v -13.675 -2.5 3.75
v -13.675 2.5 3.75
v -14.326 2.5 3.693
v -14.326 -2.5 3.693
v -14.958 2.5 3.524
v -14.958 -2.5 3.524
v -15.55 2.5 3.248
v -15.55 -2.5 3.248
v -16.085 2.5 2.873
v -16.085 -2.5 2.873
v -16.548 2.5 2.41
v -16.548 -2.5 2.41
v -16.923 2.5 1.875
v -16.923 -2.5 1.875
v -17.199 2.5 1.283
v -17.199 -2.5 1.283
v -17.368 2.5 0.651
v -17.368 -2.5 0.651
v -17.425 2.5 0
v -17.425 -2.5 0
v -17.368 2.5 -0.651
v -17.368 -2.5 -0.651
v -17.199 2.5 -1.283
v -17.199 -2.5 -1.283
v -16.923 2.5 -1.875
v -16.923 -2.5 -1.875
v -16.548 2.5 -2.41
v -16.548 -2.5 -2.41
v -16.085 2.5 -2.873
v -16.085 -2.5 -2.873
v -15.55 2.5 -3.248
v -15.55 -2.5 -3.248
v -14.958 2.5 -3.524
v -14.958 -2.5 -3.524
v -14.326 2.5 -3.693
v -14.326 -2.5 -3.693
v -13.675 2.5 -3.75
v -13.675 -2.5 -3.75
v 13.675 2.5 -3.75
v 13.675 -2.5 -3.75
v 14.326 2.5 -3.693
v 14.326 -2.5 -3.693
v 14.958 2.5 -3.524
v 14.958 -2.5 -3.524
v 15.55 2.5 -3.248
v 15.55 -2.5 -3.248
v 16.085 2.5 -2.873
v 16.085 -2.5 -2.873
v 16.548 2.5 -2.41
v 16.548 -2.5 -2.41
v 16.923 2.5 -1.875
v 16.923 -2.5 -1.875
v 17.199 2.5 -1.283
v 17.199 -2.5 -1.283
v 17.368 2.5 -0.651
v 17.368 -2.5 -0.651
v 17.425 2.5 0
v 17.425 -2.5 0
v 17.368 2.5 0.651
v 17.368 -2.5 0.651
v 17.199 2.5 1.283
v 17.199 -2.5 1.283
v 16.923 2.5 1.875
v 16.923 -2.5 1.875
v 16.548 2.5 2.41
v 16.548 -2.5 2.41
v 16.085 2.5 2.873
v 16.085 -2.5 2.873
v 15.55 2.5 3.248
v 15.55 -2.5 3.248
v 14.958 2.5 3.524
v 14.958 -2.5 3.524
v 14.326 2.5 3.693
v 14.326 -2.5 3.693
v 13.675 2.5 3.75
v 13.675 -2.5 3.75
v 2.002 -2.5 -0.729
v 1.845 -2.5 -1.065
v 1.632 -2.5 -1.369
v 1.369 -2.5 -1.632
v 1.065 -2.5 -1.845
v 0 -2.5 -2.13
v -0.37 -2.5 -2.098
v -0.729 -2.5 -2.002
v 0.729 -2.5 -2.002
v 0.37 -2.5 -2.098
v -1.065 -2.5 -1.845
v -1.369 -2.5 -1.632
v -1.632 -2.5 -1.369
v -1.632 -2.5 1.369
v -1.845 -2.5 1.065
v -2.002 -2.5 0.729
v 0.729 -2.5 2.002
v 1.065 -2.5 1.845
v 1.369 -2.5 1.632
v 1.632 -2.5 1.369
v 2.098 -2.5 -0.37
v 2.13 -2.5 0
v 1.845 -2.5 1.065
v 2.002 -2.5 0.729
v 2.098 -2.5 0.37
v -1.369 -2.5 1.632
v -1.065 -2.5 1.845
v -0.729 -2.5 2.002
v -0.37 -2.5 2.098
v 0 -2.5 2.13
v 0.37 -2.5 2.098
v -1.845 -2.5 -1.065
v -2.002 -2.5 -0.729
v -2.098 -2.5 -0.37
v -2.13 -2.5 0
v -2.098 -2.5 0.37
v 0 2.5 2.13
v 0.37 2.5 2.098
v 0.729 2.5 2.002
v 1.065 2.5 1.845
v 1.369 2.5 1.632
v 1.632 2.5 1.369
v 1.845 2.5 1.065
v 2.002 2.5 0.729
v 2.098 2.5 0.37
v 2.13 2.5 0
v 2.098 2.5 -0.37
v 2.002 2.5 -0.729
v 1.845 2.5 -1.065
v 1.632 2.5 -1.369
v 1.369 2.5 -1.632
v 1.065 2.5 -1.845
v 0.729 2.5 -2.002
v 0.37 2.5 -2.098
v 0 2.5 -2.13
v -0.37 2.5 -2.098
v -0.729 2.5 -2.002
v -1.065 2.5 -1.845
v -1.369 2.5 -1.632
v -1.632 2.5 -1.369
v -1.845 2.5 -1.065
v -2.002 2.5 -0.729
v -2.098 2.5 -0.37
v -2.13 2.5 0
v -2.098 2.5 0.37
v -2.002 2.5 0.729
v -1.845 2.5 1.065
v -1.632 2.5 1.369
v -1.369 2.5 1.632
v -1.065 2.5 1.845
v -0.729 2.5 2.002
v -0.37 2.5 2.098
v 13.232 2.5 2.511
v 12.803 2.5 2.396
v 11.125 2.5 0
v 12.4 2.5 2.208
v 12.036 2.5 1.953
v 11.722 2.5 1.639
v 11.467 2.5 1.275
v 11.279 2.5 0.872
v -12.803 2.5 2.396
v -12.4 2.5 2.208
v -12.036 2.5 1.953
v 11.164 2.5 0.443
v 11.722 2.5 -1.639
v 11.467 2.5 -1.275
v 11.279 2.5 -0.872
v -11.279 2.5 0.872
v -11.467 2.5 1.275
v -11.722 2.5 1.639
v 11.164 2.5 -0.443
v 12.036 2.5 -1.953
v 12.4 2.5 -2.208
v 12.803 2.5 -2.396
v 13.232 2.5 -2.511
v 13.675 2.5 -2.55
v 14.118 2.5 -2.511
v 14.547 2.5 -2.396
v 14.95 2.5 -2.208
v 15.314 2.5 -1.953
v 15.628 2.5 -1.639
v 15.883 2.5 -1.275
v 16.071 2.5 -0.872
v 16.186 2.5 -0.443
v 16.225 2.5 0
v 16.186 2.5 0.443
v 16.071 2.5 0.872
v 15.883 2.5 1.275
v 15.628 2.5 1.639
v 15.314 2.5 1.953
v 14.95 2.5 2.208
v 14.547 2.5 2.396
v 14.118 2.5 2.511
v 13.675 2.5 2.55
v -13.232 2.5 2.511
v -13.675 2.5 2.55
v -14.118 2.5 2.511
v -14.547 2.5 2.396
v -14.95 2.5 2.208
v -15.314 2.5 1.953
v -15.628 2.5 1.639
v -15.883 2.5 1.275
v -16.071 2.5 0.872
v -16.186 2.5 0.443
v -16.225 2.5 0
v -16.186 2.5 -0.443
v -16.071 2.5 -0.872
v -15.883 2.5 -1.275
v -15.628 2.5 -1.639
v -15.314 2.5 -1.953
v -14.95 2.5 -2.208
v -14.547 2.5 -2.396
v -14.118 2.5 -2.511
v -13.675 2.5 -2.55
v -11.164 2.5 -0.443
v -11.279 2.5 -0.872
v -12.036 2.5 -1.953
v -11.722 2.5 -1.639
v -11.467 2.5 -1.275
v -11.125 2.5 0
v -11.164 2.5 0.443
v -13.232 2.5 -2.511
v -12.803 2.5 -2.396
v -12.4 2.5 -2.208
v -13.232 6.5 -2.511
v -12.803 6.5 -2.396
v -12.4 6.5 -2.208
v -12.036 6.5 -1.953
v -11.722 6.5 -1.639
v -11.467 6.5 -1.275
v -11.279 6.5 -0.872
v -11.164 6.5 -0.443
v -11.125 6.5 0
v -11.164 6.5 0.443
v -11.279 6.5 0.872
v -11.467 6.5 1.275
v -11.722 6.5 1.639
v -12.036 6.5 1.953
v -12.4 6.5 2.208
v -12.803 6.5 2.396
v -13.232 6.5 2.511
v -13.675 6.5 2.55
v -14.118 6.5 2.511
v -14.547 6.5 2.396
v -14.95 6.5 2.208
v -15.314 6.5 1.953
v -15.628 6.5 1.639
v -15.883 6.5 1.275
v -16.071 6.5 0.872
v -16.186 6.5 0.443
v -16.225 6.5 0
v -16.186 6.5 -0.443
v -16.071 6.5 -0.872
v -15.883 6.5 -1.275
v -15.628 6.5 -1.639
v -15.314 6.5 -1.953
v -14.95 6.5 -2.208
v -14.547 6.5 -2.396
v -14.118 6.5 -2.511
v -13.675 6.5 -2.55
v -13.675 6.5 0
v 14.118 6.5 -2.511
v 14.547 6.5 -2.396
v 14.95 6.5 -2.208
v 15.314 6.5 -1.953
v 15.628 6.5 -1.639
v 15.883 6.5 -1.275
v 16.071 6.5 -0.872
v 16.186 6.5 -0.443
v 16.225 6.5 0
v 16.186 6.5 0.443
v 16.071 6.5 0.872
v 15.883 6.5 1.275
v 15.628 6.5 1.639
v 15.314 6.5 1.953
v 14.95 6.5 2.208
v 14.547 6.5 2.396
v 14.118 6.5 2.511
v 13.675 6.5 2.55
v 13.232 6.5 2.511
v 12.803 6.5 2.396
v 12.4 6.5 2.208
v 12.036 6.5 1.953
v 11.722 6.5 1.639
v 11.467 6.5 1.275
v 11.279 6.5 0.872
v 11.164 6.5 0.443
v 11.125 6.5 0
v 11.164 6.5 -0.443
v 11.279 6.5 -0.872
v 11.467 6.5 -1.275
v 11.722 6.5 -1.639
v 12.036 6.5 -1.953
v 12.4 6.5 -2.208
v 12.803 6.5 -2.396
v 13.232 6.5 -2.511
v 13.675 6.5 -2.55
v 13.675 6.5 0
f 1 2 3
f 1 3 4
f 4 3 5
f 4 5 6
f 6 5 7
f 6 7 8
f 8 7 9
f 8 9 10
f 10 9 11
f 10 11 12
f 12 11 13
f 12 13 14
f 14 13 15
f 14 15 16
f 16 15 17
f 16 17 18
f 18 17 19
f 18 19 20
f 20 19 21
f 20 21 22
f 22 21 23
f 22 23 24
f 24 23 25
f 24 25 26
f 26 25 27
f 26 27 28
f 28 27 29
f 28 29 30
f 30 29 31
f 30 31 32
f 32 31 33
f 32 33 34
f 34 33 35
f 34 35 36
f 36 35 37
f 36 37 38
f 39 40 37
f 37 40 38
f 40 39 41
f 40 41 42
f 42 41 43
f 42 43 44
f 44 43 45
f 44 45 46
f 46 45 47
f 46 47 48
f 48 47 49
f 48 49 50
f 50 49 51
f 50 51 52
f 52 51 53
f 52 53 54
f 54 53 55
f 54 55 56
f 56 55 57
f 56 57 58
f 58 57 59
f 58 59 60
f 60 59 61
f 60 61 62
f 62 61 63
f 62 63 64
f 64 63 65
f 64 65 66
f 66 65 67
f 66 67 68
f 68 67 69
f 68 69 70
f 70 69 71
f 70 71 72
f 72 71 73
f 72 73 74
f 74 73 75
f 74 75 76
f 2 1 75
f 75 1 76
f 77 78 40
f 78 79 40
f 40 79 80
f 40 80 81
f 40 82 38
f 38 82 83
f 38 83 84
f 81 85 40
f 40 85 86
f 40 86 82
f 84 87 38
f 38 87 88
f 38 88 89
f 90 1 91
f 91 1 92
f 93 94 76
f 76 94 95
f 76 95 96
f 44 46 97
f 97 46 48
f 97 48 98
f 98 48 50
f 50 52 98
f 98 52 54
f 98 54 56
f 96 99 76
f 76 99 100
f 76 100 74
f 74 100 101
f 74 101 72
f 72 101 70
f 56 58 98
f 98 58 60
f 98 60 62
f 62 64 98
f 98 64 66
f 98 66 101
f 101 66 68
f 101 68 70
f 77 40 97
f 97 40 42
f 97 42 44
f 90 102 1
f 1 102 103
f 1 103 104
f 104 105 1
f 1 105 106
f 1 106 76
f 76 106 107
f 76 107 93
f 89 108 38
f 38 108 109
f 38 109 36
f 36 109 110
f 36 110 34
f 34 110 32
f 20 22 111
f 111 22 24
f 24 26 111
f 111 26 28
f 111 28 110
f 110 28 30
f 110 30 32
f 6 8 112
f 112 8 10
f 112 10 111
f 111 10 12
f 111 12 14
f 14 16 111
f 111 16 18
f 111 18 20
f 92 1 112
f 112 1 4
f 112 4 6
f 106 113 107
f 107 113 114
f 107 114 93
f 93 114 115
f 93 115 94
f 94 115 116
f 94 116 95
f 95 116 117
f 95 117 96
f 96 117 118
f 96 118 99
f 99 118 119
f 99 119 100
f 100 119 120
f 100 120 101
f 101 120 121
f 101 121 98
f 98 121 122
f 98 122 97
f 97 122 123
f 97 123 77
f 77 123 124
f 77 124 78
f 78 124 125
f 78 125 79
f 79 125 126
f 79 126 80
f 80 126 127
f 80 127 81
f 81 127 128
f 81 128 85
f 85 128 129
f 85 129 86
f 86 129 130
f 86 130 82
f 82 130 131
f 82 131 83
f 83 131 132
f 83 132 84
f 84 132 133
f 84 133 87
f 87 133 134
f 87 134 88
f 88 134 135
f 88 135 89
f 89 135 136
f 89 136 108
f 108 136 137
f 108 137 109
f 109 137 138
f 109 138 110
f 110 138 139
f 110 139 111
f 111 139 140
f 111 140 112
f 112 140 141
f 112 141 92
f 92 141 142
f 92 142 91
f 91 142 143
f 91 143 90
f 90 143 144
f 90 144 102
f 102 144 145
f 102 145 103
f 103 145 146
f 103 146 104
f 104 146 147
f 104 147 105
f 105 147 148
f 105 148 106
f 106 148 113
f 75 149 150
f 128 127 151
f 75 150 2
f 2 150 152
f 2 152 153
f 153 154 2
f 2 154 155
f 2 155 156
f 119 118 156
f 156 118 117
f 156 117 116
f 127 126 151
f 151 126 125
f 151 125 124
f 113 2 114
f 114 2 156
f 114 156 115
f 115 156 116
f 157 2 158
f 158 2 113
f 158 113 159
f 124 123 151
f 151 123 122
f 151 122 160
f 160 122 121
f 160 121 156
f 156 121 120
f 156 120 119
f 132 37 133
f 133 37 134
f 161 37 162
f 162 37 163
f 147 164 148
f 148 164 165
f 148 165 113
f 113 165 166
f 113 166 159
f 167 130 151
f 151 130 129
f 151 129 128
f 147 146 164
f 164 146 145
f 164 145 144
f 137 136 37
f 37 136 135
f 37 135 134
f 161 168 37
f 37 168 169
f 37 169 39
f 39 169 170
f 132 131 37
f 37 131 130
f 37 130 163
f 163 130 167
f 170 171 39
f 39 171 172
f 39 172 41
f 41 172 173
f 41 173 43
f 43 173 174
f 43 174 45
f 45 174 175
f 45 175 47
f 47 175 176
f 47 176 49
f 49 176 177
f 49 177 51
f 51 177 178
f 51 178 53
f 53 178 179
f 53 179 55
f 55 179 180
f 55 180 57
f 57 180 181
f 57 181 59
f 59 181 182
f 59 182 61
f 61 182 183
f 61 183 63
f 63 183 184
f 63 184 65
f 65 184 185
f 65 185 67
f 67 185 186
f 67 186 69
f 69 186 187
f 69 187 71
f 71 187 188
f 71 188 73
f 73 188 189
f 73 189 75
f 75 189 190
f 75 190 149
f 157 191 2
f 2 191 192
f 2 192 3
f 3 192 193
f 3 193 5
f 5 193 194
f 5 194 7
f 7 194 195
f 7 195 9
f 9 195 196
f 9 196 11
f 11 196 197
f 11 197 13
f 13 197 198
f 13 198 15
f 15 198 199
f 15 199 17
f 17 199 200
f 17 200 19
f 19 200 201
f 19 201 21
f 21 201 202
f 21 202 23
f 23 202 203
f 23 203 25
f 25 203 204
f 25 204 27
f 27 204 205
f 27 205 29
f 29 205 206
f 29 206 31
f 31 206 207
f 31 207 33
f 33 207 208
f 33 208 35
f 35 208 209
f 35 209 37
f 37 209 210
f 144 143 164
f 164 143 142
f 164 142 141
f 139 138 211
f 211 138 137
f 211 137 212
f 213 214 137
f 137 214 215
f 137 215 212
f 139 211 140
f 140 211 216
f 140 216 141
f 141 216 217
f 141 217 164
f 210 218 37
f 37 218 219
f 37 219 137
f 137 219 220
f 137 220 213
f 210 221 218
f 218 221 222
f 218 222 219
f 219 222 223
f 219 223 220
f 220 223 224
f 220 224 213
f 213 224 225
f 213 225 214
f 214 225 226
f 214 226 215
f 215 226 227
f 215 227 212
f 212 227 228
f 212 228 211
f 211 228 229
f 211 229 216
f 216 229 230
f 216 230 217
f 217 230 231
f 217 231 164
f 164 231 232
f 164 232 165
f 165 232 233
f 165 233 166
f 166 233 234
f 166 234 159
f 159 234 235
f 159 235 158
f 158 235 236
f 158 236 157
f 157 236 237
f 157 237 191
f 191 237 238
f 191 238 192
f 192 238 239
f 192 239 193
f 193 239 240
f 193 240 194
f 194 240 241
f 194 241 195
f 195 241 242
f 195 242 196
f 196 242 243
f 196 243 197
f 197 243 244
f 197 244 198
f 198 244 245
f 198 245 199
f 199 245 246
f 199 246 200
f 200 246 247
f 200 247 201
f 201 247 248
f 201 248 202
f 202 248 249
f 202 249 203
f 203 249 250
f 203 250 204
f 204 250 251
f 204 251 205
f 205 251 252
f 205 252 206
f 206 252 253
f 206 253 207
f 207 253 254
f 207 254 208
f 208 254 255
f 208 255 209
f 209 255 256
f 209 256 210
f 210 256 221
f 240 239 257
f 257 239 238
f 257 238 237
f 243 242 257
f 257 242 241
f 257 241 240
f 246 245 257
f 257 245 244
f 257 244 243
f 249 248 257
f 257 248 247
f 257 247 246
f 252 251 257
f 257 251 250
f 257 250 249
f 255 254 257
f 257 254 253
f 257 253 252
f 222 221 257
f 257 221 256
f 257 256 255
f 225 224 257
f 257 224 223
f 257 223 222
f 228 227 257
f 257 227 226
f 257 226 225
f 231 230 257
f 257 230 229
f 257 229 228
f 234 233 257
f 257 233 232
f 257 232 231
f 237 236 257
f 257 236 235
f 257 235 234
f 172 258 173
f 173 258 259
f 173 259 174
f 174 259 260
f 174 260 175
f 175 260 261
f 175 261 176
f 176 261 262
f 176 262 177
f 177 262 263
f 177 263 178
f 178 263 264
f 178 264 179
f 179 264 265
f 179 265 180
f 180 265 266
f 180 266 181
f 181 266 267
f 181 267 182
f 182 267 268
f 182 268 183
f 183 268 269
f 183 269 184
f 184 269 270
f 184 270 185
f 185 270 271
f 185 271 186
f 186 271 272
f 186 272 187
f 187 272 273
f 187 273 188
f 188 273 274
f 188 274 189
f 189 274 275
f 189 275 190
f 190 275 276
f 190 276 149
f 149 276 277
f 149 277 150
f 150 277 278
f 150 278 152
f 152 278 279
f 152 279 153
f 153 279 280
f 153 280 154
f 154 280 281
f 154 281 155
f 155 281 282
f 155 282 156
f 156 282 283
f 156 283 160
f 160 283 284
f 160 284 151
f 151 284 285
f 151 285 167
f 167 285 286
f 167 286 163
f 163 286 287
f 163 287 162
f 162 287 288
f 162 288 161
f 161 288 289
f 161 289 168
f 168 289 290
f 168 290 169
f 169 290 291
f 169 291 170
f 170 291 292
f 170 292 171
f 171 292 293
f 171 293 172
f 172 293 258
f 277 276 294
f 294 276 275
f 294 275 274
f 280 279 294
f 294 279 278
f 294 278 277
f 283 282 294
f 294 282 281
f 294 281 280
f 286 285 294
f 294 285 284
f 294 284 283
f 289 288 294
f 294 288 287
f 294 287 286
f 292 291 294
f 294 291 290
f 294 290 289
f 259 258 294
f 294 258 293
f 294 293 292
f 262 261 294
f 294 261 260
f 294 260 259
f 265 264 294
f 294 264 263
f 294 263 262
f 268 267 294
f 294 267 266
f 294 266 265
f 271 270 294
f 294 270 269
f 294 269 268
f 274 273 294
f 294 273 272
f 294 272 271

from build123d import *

# Parameters (mm, degrees)
BOSS_EXTRUDE1_DEPTH      = 2.5
BOSS_EXTRUDE1_DEPTH_BACK = 2.5
SKETCH1_R                = 2.13
SKETCH2_R                = 2.55
BOSS_EXTRUDE2_DEPTH      = 4


with BuildPart() as part:
    # Sketch1 → Boss-Extrude1 (new, two sides: drawn at the far end of the back side and taken through both)
    with BuildSketch(Plane(origin=(0, 0, 0), x_dir=(1, 0, 0), z_dir=(0, 1, 0)).offset(-BOSS_EXTRUDE1_DEPTH_BACK)):
        with BuildLine():
            Line((-13.675, 3.75), (13.675, 3.75))
            ThreePointArc((13.675, 3.75), (17.425, 0), (13.675, -3.75))
            Line((13.675, -3.75), (-13.675, -3.75))
            ThreePointArc((-13.675, -3.75), (-17.425, 0), (-13.675, 3.75))
        make_face()
        Circle(SKETCH1_R, mode=Mode.SUBTRACT)
    extrude(amount=BOSS_EXTRUDE1_DEPTH + BOSS_EXTRUDE1_DEPTH_BACK)

    # Sketch2 → Boss-Extrude2 (add)
    with BuildSketch(Plane(origin=(0, 2.5, 0), x_dir=(1, 0, 0), z_dir=(0, 1, 0))):
        with Locations((-13.675, 0)):
            Circle(SKETCH2_R)
        with Locations((13.675, 0)):
            Circle(SKETCH2_R)
    extrude(amount=BOSS_EXTRUDE2_DEPTH)


solid = part.part
